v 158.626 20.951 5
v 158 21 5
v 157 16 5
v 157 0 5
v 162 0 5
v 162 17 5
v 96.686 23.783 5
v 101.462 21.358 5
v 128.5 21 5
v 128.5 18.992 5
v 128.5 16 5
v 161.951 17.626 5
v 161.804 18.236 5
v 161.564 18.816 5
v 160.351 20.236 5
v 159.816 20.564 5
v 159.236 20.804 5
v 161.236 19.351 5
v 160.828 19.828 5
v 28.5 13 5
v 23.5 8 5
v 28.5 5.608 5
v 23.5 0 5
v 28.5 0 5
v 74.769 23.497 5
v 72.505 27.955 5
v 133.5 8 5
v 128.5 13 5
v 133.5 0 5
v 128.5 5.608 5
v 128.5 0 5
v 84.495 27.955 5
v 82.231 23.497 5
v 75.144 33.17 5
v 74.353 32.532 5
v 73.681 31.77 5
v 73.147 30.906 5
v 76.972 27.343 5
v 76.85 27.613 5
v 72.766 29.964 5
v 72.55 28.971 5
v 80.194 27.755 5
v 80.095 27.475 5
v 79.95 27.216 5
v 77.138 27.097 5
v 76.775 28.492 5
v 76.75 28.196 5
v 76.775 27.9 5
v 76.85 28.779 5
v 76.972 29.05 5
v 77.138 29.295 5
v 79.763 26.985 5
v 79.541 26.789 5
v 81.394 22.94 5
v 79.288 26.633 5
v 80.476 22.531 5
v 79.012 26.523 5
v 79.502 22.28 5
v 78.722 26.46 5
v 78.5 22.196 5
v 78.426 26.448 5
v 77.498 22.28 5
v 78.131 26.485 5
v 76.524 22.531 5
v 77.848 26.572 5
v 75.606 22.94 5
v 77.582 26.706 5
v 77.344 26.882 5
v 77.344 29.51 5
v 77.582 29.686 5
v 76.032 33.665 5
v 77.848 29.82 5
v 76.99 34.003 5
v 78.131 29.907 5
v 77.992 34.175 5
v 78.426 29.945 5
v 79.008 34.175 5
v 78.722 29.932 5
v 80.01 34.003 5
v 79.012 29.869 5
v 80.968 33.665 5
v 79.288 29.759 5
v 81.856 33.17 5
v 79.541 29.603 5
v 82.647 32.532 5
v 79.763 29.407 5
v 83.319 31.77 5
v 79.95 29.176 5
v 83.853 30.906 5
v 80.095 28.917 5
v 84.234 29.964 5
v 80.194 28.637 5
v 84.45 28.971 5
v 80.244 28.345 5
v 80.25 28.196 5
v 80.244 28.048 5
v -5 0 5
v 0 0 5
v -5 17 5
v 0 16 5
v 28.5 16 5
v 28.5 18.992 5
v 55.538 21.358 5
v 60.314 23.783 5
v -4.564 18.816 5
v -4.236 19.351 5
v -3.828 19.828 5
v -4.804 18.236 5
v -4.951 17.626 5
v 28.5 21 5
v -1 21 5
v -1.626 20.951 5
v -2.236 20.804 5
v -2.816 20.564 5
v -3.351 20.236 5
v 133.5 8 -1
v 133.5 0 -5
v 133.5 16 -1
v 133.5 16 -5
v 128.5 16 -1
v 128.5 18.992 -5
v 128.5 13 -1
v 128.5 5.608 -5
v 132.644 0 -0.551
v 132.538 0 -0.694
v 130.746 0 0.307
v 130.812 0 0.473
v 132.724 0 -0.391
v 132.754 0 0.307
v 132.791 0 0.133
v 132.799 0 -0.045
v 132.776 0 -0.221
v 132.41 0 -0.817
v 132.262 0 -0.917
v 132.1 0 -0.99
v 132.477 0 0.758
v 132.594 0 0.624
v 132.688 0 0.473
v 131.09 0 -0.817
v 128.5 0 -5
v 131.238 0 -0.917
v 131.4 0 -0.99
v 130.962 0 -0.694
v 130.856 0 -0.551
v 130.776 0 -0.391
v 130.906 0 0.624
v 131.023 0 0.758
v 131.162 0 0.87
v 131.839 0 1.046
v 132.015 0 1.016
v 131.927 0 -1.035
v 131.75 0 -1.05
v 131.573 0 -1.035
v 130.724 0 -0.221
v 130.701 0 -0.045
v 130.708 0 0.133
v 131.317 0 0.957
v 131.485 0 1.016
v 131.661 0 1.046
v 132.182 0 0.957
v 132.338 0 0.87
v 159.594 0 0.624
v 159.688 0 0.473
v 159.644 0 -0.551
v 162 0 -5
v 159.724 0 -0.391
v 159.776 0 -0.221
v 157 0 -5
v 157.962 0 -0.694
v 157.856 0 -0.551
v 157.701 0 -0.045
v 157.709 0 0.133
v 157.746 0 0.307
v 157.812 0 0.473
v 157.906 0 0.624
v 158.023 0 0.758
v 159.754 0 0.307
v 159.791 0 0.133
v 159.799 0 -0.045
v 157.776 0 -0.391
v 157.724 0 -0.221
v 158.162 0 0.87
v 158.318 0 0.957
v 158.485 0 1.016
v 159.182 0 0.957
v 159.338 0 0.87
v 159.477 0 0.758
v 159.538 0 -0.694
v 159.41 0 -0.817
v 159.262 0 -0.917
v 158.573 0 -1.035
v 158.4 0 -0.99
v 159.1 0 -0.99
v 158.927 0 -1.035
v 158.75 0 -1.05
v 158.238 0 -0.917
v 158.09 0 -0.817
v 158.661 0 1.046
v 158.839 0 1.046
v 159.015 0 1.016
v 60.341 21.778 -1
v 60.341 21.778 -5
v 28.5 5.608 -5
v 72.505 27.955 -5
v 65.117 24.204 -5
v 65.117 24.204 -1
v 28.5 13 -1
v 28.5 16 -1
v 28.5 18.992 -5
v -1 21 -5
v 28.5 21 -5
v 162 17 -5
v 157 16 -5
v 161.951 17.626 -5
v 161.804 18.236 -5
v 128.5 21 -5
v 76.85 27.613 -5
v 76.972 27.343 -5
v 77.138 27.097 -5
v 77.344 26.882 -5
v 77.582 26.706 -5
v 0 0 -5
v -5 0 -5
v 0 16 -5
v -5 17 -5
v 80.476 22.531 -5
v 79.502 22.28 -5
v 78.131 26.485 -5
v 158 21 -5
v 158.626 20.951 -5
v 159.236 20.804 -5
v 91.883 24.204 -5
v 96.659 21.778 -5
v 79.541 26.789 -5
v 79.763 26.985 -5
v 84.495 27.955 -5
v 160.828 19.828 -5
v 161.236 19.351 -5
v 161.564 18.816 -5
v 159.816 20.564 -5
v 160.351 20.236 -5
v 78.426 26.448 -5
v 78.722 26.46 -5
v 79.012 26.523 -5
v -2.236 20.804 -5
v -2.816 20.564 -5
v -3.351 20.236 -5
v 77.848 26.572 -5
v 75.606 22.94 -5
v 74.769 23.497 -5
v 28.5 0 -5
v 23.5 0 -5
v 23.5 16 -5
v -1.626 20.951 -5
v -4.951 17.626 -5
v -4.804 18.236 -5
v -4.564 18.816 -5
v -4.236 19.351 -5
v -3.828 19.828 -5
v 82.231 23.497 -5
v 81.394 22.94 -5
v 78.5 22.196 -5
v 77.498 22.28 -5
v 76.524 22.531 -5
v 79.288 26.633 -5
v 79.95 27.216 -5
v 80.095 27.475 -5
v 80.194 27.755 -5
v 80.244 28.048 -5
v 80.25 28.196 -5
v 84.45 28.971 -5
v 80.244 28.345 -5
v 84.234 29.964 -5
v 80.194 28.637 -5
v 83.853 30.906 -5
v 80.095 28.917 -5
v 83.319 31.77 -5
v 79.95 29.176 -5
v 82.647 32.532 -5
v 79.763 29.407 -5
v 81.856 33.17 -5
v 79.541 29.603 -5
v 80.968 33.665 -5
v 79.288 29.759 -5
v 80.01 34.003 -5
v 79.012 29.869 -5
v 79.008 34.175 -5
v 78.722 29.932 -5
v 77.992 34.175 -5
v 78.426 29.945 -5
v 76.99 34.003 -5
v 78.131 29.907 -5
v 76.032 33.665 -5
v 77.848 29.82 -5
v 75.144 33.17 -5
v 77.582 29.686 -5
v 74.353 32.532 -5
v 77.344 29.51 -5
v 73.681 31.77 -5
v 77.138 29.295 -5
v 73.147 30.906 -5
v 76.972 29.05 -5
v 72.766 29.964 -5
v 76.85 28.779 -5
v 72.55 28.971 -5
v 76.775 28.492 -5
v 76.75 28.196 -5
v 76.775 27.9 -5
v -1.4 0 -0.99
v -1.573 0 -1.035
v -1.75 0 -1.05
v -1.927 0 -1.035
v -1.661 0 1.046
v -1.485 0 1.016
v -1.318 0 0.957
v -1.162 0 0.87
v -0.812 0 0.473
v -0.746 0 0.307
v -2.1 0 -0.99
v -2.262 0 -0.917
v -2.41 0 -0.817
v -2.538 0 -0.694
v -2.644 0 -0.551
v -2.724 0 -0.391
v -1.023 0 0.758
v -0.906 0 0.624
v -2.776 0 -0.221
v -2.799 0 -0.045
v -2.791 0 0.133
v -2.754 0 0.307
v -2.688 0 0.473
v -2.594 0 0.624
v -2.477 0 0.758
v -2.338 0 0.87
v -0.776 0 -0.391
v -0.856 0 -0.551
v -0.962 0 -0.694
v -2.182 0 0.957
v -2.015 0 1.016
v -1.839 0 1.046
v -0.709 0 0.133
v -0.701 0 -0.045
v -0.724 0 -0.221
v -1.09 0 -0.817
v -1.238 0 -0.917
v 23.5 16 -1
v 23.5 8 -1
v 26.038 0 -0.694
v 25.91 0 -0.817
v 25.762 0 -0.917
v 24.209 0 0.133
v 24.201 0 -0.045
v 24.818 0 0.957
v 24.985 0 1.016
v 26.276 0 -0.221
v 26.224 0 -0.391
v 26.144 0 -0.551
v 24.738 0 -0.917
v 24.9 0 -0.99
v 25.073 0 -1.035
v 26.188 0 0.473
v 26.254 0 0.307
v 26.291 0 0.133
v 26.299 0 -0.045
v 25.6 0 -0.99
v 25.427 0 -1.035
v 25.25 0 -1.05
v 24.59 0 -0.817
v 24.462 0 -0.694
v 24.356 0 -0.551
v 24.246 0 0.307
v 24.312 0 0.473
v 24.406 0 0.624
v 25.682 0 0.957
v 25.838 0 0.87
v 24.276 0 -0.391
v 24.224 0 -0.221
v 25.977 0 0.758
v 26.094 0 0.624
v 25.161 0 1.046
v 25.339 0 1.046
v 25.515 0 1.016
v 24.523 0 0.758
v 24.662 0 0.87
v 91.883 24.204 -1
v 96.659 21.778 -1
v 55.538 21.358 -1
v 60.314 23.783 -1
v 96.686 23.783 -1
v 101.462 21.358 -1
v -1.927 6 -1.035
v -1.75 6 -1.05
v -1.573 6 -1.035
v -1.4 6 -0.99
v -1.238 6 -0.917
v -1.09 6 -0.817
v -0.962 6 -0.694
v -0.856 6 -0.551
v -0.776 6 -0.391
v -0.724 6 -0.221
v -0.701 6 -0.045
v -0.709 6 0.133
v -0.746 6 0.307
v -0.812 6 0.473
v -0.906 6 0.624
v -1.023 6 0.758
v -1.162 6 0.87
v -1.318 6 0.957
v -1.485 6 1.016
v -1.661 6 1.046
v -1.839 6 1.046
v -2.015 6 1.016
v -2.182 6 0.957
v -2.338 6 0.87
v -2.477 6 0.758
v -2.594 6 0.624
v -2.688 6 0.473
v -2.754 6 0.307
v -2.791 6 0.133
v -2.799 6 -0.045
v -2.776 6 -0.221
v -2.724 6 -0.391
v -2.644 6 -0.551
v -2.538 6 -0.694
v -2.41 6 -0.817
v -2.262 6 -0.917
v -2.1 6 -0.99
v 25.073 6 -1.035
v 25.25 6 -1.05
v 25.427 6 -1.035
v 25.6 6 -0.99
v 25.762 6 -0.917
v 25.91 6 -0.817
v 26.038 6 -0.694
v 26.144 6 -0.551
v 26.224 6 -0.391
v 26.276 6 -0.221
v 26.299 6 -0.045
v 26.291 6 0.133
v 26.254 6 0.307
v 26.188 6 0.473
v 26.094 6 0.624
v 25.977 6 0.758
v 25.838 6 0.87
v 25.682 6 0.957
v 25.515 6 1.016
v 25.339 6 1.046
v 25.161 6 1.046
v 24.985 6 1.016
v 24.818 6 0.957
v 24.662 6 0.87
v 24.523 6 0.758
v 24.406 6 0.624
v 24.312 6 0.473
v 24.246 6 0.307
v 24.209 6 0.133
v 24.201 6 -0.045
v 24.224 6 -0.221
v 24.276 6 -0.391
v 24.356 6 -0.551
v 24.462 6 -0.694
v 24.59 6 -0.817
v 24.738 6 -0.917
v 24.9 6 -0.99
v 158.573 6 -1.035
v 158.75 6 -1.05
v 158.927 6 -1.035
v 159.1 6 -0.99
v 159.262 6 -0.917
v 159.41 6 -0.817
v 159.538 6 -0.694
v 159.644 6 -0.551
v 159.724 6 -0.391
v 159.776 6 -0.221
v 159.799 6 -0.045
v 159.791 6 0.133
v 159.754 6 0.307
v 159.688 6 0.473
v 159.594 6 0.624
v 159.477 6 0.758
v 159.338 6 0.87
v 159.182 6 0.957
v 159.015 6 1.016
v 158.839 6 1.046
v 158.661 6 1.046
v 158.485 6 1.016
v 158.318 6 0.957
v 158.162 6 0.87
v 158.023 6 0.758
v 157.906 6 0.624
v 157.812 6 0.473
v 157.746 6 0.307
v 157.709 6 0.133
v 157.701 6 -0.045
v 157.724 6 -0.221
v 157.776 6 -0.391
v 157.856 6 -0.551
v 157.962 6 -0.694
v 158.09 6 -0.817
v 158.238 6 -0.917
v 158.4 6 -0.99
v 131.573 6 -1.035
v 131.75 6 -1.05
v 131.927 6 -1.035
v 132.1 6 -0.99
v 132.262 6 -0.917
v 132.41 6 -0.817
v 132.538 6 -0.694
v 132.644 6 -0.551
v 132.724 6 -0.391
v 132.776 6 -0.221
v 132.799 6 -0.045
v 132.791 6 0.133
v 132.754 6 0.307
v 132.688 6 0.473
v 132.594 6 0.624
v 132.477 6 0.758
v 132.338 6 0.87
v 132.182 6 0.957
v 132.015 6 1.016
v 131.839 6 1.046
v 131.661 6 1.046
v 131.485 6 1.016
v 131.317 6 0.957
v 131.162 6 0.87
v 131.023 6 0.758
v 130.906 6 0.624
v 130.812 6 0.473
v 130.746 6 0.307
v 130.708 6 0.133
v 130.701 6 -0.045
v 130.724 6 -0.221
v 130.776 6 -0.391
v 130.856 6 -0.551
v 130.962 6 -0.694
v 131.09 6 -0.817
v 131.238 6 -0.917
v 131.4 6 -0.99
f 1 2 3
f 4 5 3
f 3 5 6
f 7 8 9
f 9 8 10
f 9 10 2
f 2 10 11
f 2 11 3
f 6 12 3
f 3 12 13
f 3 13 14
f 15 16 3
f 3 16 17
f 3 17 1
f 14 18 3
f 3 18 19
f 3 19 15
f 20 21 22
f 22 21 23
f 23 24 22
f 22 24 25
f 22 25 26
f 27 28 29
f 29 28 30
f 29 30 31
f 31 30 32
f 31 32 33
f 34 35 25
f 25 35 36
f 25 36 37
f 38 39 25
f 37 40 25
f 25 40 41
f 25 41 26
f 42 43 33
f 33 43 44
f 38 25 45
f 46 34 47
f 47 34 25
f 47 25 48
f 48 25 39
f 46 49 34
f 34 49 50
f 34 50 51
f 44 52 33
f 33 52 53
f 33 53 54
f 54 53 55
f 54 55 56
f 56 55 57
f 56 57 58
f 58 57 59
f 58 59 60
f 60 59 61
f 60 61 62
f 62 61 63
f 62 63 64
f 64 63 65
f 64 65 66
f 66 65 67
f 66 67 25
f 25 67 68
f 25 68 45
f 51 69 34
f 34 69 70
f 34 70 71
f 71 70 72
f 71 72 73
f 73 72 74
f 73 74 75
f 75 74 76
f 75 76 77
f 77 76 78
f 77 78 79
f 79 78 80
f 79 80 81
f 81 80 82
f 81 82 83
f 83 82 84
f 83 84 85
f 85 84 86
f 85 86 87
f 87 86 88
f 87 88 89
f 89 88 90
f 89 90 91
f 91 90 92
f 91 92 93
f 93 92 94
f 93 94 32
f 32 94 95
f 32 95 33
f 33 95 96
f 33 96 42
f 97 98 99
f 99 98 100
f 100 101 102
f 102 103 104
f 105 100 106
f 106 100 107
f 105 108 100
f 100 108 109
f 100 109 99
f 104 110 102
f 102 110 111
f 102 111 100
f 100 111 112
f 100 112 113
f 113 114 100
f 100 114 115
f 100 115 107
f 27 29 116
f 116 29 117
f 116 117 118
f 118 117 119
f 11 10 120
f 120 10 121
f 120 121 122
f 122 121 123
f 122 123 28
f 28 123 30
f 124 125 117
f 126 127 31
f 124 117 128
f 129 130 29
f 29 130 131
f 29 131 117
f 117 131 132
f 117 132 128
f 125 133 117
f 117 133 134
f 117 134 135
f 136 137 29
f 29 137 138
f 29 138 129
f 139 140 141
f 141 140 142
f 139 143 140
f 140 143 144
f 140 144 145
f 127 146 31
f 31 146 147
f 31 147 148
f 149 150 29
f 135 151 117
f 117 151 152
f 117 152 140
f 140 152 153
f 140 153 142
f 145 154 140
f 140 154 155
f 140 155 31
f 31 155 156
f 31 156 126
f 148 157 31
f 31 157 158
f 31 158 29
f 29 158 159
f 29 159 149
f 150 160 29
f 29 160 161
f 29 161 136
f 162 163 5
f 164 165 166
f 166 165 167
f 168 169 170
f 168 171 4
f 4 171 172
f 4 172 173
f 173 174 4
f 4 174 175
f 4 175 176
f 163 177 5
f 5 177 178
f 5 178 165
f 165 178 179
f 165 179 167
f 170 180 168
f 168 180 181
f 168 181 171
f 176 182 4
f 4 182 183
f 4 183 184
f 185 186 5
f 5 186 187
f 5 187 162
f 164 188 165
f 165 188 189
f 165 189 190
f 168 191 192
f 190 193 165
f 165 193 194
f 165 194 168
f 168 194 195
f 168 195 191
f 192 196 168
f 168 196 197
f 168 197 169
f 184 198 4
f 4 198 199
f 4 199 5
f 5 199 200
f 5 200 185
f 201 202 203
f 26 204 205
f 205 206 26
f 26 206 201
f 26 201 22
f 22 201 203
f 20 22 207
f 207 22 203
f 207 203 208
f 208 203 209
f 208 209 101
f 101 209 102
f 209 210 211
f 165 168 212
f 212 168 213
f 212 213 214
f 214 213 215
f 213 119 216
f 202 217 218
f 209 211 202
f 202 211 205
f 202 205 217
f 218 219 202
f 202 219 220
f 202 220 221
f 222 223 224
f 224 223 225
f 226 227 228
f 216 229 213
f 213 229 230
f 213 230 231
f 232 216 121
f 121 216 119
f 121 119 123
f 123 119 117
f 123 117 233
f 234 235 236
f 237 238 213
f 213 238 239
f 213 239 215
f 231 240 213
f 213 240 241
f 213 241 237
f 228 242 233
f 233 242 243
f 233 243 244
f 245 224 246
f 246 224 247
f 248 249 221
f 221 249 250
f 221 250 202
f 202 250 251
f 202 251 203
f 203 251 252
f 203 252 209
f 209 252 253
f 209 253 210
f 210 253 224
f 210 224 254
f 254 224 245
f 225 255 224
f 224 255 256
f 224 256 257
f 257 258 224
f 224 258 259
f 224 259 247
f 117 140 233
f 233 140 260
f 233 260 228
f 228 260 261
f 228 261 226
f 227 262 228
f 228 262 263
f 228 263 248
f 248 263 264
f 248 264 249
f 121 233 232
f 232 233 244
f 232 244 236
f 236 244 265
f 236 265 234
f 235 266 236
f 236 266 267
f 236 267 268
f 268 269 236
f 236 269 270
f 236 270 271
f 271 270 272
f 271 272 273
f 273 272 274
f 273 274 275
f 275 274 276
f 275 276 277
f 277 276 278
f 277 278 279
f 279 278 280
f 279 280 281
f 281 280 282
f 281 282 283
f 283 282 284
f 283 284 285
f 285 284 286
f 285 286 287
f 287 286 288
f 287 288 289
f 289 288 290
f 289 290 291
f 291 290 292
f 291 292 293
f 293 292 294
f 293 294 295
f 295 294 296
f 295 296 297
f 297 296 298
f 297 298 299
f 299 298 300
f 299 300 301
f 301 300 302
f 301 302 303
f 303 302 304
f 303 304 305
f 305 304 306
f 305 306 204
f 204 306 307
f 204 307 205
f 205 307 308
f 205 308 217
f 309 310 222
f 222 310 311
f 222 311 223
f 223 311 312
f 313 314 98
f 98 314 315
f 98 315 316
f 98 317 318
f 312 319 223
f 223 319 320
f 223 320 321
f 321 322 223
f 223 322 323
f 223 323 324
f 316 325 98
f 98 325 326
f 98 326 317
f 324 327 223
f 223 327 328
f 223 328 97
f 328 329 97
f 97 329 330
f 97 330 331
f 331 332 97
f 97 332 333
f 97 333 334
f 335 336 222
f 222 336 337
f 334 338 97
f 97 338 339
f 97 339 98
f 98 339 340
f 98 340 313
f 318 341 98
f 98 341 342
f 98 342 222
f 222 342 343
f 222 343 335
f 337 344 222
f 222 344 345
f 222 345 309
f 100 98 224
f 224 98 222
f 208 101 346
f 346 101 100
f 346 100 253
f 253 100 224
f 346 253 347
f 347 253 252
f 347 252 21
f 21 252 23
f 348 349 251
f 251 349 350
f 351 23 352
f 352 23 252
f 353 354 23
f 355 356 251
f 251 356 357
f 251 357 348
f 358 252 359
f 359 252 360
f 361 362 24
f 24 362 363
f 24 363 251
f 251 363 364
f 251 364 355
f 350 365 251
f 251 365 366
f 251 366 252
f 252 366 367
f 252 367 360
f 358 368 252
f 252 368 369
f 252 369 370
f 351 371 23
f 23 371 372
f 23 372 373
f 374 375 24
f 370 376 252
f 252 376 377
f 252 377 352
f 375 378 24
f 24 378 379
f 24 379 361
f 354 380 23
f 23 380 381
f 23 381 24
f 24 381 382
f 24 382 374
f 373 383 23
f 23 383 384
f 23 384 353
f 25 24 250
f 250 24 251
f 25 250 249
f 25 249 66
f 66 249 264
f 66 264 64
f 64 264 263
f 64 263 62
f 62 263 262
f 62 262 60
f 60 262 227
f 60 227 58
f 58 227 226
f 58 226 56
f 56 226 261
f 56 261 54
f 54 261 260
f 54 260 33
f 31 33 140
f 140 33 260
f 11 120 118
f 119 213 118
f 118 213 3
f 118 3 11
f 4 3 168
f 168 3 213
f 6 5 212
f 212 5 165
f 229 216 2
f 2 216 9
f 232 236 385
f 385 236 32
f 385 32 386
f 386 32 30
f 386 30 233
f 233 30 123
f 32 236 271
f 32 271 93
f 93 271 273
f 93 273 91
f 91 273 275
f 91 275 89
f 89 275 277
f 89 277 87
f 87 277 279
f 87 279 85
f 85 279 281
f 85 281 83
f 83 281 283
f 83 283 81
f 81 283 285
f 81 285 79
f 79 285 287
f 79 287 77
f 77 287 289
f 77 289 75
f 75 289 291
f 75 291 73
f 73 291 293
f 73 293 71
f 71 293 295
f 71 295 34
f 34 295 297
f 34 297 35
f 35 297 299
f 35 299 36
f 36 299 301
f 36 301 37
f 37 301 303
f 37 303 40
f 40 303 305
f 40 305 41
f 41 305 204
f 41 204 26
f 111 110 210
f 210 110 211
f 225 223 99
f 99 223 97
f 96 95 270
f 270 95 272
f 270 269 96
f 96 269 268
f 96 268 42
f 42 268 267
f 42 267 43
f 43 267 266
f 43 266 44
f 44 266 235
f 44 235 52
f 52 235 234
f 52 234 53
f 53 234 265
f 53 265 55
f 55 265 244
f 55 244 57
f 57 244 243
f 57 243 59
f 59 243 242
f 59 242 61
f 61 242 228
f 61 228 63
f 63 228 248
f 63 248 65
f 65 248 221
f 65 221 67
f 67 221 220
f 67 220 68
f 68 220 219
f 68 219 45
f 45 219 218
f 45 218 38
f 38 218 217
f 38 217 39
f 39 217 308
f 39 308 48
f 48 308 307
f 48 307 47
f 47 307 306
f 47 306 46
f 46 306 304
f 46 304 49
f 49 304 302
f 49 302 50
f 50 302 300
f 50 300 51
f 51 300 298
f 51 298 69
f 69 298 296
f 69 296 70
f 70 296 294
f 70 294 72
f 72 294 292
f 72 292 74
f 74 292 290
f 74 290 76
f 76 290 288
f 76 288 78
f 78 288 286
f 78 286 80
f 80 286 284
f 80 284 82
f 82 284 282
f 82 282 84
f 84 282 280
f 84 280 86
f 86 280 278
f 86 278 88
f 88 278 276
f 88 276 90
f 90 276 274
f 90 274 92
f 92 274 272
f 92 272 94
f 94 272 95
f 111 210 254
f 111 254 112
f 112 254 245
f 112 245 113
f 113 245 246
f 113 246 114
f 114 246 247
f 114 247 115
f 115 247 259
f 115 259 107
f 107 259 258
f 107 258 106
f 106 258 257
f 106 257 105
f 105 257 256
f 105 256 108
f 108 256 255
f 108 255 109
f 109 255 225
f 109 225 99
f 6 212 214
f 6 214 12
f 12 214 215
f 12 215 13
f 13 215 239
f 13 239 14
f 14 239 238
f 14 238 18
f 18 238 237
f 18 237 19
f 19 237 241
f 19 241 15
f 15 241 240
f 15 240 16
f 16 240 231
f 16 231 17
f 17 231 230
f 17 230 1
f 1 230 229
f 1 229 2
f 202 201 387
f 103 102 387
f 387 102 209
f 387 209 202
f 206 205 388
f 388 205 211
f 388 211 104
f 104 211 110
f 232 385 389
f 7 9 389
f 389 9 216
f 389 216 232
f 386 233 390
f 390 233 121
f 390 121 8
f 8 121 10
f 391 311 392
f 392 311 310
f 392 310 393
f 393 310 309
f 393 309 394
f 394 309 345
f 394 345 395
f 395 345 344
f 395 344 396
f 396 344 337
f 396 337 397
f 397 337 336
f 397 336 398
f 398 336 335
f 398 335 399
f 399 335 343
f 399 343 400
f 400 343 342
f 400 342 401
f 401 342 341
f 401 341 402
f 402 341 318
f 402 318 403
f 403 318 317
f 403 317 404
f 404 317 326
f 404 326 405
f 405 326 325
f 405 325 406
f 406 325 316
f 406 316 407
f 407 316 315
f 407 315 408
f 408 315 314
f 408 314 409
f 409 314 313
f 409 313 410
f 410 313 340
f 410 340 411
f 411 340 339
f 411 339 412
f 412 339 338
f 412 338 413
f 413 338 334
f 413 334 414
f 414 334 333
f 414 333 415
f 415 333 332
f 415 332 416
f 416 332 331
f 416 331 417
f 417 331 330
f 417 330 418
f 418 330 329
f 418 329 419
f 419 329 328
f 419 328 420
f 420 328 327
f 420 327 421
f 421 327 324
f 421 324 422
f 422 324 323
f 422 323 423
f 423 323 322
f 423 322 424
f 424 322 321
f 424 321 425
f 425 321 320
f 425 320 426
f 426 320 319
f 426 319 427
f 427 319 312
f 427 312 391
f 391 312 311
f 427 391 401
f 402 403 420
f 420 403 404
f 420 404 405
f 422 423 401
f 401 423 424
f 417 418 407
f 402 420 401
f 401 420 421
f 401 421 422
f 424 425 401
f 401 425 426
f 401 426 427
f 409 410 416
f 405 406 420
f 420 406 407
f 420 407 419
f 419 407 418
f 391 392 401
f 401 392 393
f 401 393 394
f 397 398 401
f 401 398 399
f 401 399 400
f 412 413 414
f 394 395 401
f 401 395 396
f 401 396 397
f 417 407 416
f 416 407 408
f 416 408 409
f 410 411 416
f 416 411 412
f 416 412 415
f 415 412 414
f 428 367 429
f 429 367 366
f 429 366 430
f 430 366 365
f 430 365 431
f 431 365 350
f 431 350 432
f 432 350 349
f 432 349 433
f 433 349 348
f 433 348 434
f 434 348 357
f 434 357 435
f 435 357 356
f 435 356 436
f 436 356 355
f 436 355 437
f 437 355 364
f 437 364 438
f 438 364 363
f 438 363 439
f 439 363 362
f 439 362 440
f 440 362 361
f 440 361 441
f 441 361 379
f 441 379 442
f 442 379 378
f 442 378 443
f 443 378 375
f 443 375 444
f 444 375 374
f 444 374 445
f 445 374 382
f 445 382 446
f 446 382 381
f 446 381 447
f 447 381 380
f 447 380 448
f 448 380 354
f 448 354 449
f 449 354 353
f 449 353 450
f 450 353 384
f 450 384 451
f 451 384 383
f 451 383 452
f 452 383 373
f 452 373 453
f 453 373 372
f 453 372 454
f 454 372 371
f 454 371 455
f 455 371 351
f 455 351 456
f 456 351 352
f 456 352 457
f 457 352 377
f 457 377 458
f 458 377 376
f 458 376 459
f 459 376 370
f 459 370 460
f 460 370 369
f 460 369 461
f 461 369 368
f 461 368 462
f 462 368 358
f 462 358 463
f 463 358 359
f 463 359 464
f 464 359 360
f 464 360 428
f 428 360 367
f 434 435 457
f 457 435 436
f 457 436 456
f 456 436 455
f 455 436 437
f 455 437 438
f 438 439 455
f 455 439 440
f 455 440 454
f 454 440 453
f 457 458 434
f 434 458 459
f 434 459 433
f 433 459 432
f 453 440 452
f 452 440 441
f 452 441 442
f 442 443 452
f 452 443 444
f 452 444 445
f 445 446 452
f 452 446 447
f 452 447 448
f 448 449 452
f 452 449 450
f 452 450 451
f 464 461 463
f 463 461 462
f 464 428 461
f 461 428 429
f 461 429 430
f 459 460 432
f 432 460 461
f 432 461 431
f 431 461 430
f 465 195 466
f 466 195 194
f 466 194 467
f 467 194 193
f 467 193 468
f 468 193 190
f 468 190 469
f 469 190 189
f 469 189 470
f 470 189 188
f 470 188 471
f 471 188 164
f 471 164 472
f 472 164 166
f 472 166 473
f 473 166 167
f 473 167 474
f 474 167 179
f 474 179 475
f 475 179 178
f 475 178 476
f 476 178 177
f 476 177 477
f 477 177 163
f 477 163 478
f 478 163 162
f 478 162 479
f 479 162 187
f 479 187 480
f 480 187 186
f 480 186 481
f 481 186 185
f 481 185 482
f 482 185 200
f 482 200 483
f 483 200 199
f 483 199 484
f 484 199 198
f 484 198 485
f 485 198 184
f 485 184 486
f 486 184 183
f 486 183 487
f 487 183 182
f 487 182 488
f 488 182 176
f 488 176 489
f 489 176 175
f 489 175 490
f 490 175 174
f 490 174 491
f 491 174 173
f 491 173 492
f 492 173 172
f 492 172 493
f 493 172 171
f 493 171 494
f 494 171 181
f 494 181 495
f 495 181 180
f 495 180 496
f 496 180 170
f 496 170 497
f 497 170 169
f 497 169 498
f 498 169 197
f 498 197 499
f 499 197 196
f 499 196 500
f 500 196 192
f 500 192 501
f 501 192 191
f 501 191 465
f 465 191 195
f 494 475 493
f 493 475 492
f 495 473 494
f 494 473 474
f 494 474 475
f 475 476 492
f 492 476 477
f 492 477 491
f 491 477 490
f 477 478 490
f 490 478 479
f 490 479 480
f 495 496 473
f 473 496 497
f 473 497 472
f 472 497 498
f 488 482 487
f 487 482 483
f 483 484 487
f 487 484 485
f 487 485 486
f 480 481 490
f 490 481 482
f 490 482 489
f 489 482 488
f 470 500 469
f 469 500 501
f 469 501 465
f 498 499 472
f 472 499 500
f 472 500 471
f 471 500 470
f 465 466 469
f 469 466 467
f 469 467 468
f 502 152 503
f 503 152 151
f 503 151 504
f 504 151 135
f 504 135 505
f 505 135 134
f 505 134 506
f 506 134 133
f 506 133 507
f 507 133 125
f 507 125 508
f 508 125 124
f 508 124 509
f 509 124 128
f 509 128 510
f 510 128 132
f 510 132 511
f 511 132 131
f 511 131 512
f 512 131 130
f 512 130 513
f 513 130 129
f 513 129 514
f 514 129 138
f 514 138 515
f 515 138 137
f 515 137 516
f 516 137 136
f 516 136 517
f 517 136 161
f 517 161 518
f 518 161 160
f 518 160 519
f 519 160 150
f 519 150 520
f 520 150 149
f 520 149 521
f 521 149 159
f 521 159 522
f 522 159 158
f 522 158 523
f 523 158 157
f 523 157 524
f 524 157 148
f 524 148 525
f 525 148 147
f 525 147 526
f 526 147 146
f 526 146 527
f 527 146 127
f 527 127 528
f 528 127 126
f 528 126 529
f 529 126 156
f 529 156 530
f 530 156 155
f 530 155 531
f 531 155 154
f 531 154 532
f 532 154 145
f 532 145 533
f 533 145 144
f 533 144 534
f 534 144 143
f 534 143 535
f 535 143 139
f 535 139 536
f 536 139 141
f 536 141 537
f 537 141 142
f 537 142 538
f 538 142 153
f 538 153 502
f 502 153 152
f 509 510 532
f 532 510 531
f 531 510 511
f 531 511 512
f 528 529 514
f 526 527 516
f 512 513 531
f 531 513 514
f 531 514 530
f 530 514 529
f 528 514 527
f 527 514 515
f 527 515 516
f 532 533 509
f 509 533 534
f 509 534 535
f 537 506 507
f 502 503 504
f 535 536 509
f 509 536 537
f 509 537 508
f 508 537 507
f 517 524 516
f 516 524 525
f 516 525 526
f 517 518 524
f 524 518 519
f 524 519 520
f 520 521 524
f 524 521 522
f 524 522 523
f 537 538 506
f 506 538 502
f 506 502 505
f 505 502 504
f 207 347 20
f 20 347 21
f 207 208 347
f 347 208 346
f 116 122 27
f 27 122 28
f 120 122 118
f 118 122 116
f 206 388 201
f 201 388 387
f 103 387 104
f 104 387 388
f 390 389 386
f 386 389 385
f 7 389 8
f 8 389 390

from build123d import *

# Parameters (mm, degrees)
SKICA1_R                 = 1.75
P_IDAT_VYSUNUT_M1_DEPTH  = 5
ZAOBLIT1_R               = 4
P_IDAT_VYSUNUT_M2_DEPTH  = 5
SKICA3_R                 = 1.05
ODEBRAT_VYSUNUT_M1_DEPTH = 6
ODEBRAT_VYSUNUT_M2_DEPTH = 6
ODEBRAT_VYSUNUT_M3_DEPTH = 6


with BuildPart() as part:
    # Skica1 → Přidat vysunutím1 (new body, symmetric)
    with BuildSketch(Plane.XY):
        with BuildLine():
            Line((0, 0), (0, 16))
            Line((0, 16), (23.5, 16))
            Line((23.5, 16), (23.5, 0))
            Line((23.5, 0), (28.5, 0))
            Line((28.5, 0), (74.768828107, 23.497329584))
            ThreePointArc((74.768828107, 23.497329584), (78.5, 22.196090729), (82.231171893, 23.497329584))
            Line((82.231171893, 23.497329584), (128.5, 0))
            Line((128.5, 0), (133.5, 0))
            Line((133.5, 0), (133.5, 16))
            Line((133.5, 16), (157, 16))
            Line((157, 16), (157, 0))
            Line((157, 0), (162, 0))
            Line((162, 0), (162, 21))
            Line((162, 21), (128.5, 21))
            Line((128.5, 21), (128.5, 5.607818541))
            Line((128.5, 5.607818541), (84.49517003, 27.955391095))
            ThreePointArc((84.49517003, 27.955391095), (78.5, 34.196090729), (72.50482997, 27.955391095))
            Line((72.50482997, 27.955391095), (28.5, 5.607818541))
            Line((28.5, 5.607818541), (28.5, 21))
            Line((28.5, 21), (-5, 21))
            Line((-5, 21), (-5, 0))
            Line((-5, 0), (0, 0))
        make_face()
        with Locations((78.5, 28.196090729)):
            Circle(SKICA1_R, mode=Mode.SUBTRACT)
    extrude(amount=P_IDAT_VYSUNUT_M1_DEPTH, both=True)

    # Zaoblit1
    zaoblit1_edges = [part.edges().sort_by_distance(p)[0] for p in [
        (-5, 21, 0),
        (162, 21, 0),
    ]]
    fillet(zaoblit1_edges, radius=ZAOBLIT1_R)

    # Skica2 → Přidat vysunutím2 (add, symmetric)
    with BuildSketch(Plane.XY):
        Polygon((28.5, 21), (65.117103916, 24.203581484), (60.341045967, 21.778090882), (28.5, 18.992360325), align=None)
    p_idat_vysunut_m2 = extrude(amount=P_IDAT_VYSUNUT_M2_DEPTH, both=True)

    # Zrcadlit1: Přidat vysunutím2 across plane
    add(p_idat_vysunut_m2.mirror(Plane.ZY.offset(-78.5)))

    # Skica3 → Odebrat vysunutím1 (cut)
    with BuildSketch(Plane.XZ):
        with Locations((-1.75, 0)):
            Circle(SKICA3_R)
        with Locations((25.25, 0)):
            Circle(SKICA3_R)
    odebrat_vysunut_m1 = extrude(amount=-ODEBRAT_VYSUNUT_M1_DEPTH, mode=Mode.SUBTRACT)

    # Zrcadlit2: Odebrat vysunutím1 across plane
    add(odebrat_vysunut_m1.mirror(Plane.ZY.offset(-78.5)), mode=Mode.SUBTRACT)

    # Skica4 → Odebrat vysunutím2 (cut)
    with BuildSketch(Plane.XY.offset(5)):
        Polygon((23.5, 16), (28.5, 16), (28.5, 13), (23.5, 8), align=None)
    odebrat_vysunut_m2 = extrude(amount=-ODEBRAT_VYSUNUT_M2_DEPTH, mode=Mode.SUBTRACT)

    # Zrcadlit3: Odebrat vysunutím2 across plane
    add(odebrat_vysunut_m2.mirror(Plane.ZY.offset(-78.5)), mode=Mode.SUBTRACT)

    # Skica5 → Odebrat vysunutím3 (cut)
    with BuildSketch(Plane.XY.offset(5)):
        Polygon((60.341045967, 21.778090882), (65.117103916, 24.203581484), (60.314461293, 23.783404699), (55.538403344, 21.357914097), align=None)
        Polygon((91.882896084, 24.203581484), (96.685538707, 23.783404699), (101.461596656, 21.357914097), (96.658954033, 21.778090882), align=None)
    extrude(amount=-ODEBRAT_VYSUNUT_M3_DEPTH, mode=Mode.SUBTRACT)


solid = part.part
